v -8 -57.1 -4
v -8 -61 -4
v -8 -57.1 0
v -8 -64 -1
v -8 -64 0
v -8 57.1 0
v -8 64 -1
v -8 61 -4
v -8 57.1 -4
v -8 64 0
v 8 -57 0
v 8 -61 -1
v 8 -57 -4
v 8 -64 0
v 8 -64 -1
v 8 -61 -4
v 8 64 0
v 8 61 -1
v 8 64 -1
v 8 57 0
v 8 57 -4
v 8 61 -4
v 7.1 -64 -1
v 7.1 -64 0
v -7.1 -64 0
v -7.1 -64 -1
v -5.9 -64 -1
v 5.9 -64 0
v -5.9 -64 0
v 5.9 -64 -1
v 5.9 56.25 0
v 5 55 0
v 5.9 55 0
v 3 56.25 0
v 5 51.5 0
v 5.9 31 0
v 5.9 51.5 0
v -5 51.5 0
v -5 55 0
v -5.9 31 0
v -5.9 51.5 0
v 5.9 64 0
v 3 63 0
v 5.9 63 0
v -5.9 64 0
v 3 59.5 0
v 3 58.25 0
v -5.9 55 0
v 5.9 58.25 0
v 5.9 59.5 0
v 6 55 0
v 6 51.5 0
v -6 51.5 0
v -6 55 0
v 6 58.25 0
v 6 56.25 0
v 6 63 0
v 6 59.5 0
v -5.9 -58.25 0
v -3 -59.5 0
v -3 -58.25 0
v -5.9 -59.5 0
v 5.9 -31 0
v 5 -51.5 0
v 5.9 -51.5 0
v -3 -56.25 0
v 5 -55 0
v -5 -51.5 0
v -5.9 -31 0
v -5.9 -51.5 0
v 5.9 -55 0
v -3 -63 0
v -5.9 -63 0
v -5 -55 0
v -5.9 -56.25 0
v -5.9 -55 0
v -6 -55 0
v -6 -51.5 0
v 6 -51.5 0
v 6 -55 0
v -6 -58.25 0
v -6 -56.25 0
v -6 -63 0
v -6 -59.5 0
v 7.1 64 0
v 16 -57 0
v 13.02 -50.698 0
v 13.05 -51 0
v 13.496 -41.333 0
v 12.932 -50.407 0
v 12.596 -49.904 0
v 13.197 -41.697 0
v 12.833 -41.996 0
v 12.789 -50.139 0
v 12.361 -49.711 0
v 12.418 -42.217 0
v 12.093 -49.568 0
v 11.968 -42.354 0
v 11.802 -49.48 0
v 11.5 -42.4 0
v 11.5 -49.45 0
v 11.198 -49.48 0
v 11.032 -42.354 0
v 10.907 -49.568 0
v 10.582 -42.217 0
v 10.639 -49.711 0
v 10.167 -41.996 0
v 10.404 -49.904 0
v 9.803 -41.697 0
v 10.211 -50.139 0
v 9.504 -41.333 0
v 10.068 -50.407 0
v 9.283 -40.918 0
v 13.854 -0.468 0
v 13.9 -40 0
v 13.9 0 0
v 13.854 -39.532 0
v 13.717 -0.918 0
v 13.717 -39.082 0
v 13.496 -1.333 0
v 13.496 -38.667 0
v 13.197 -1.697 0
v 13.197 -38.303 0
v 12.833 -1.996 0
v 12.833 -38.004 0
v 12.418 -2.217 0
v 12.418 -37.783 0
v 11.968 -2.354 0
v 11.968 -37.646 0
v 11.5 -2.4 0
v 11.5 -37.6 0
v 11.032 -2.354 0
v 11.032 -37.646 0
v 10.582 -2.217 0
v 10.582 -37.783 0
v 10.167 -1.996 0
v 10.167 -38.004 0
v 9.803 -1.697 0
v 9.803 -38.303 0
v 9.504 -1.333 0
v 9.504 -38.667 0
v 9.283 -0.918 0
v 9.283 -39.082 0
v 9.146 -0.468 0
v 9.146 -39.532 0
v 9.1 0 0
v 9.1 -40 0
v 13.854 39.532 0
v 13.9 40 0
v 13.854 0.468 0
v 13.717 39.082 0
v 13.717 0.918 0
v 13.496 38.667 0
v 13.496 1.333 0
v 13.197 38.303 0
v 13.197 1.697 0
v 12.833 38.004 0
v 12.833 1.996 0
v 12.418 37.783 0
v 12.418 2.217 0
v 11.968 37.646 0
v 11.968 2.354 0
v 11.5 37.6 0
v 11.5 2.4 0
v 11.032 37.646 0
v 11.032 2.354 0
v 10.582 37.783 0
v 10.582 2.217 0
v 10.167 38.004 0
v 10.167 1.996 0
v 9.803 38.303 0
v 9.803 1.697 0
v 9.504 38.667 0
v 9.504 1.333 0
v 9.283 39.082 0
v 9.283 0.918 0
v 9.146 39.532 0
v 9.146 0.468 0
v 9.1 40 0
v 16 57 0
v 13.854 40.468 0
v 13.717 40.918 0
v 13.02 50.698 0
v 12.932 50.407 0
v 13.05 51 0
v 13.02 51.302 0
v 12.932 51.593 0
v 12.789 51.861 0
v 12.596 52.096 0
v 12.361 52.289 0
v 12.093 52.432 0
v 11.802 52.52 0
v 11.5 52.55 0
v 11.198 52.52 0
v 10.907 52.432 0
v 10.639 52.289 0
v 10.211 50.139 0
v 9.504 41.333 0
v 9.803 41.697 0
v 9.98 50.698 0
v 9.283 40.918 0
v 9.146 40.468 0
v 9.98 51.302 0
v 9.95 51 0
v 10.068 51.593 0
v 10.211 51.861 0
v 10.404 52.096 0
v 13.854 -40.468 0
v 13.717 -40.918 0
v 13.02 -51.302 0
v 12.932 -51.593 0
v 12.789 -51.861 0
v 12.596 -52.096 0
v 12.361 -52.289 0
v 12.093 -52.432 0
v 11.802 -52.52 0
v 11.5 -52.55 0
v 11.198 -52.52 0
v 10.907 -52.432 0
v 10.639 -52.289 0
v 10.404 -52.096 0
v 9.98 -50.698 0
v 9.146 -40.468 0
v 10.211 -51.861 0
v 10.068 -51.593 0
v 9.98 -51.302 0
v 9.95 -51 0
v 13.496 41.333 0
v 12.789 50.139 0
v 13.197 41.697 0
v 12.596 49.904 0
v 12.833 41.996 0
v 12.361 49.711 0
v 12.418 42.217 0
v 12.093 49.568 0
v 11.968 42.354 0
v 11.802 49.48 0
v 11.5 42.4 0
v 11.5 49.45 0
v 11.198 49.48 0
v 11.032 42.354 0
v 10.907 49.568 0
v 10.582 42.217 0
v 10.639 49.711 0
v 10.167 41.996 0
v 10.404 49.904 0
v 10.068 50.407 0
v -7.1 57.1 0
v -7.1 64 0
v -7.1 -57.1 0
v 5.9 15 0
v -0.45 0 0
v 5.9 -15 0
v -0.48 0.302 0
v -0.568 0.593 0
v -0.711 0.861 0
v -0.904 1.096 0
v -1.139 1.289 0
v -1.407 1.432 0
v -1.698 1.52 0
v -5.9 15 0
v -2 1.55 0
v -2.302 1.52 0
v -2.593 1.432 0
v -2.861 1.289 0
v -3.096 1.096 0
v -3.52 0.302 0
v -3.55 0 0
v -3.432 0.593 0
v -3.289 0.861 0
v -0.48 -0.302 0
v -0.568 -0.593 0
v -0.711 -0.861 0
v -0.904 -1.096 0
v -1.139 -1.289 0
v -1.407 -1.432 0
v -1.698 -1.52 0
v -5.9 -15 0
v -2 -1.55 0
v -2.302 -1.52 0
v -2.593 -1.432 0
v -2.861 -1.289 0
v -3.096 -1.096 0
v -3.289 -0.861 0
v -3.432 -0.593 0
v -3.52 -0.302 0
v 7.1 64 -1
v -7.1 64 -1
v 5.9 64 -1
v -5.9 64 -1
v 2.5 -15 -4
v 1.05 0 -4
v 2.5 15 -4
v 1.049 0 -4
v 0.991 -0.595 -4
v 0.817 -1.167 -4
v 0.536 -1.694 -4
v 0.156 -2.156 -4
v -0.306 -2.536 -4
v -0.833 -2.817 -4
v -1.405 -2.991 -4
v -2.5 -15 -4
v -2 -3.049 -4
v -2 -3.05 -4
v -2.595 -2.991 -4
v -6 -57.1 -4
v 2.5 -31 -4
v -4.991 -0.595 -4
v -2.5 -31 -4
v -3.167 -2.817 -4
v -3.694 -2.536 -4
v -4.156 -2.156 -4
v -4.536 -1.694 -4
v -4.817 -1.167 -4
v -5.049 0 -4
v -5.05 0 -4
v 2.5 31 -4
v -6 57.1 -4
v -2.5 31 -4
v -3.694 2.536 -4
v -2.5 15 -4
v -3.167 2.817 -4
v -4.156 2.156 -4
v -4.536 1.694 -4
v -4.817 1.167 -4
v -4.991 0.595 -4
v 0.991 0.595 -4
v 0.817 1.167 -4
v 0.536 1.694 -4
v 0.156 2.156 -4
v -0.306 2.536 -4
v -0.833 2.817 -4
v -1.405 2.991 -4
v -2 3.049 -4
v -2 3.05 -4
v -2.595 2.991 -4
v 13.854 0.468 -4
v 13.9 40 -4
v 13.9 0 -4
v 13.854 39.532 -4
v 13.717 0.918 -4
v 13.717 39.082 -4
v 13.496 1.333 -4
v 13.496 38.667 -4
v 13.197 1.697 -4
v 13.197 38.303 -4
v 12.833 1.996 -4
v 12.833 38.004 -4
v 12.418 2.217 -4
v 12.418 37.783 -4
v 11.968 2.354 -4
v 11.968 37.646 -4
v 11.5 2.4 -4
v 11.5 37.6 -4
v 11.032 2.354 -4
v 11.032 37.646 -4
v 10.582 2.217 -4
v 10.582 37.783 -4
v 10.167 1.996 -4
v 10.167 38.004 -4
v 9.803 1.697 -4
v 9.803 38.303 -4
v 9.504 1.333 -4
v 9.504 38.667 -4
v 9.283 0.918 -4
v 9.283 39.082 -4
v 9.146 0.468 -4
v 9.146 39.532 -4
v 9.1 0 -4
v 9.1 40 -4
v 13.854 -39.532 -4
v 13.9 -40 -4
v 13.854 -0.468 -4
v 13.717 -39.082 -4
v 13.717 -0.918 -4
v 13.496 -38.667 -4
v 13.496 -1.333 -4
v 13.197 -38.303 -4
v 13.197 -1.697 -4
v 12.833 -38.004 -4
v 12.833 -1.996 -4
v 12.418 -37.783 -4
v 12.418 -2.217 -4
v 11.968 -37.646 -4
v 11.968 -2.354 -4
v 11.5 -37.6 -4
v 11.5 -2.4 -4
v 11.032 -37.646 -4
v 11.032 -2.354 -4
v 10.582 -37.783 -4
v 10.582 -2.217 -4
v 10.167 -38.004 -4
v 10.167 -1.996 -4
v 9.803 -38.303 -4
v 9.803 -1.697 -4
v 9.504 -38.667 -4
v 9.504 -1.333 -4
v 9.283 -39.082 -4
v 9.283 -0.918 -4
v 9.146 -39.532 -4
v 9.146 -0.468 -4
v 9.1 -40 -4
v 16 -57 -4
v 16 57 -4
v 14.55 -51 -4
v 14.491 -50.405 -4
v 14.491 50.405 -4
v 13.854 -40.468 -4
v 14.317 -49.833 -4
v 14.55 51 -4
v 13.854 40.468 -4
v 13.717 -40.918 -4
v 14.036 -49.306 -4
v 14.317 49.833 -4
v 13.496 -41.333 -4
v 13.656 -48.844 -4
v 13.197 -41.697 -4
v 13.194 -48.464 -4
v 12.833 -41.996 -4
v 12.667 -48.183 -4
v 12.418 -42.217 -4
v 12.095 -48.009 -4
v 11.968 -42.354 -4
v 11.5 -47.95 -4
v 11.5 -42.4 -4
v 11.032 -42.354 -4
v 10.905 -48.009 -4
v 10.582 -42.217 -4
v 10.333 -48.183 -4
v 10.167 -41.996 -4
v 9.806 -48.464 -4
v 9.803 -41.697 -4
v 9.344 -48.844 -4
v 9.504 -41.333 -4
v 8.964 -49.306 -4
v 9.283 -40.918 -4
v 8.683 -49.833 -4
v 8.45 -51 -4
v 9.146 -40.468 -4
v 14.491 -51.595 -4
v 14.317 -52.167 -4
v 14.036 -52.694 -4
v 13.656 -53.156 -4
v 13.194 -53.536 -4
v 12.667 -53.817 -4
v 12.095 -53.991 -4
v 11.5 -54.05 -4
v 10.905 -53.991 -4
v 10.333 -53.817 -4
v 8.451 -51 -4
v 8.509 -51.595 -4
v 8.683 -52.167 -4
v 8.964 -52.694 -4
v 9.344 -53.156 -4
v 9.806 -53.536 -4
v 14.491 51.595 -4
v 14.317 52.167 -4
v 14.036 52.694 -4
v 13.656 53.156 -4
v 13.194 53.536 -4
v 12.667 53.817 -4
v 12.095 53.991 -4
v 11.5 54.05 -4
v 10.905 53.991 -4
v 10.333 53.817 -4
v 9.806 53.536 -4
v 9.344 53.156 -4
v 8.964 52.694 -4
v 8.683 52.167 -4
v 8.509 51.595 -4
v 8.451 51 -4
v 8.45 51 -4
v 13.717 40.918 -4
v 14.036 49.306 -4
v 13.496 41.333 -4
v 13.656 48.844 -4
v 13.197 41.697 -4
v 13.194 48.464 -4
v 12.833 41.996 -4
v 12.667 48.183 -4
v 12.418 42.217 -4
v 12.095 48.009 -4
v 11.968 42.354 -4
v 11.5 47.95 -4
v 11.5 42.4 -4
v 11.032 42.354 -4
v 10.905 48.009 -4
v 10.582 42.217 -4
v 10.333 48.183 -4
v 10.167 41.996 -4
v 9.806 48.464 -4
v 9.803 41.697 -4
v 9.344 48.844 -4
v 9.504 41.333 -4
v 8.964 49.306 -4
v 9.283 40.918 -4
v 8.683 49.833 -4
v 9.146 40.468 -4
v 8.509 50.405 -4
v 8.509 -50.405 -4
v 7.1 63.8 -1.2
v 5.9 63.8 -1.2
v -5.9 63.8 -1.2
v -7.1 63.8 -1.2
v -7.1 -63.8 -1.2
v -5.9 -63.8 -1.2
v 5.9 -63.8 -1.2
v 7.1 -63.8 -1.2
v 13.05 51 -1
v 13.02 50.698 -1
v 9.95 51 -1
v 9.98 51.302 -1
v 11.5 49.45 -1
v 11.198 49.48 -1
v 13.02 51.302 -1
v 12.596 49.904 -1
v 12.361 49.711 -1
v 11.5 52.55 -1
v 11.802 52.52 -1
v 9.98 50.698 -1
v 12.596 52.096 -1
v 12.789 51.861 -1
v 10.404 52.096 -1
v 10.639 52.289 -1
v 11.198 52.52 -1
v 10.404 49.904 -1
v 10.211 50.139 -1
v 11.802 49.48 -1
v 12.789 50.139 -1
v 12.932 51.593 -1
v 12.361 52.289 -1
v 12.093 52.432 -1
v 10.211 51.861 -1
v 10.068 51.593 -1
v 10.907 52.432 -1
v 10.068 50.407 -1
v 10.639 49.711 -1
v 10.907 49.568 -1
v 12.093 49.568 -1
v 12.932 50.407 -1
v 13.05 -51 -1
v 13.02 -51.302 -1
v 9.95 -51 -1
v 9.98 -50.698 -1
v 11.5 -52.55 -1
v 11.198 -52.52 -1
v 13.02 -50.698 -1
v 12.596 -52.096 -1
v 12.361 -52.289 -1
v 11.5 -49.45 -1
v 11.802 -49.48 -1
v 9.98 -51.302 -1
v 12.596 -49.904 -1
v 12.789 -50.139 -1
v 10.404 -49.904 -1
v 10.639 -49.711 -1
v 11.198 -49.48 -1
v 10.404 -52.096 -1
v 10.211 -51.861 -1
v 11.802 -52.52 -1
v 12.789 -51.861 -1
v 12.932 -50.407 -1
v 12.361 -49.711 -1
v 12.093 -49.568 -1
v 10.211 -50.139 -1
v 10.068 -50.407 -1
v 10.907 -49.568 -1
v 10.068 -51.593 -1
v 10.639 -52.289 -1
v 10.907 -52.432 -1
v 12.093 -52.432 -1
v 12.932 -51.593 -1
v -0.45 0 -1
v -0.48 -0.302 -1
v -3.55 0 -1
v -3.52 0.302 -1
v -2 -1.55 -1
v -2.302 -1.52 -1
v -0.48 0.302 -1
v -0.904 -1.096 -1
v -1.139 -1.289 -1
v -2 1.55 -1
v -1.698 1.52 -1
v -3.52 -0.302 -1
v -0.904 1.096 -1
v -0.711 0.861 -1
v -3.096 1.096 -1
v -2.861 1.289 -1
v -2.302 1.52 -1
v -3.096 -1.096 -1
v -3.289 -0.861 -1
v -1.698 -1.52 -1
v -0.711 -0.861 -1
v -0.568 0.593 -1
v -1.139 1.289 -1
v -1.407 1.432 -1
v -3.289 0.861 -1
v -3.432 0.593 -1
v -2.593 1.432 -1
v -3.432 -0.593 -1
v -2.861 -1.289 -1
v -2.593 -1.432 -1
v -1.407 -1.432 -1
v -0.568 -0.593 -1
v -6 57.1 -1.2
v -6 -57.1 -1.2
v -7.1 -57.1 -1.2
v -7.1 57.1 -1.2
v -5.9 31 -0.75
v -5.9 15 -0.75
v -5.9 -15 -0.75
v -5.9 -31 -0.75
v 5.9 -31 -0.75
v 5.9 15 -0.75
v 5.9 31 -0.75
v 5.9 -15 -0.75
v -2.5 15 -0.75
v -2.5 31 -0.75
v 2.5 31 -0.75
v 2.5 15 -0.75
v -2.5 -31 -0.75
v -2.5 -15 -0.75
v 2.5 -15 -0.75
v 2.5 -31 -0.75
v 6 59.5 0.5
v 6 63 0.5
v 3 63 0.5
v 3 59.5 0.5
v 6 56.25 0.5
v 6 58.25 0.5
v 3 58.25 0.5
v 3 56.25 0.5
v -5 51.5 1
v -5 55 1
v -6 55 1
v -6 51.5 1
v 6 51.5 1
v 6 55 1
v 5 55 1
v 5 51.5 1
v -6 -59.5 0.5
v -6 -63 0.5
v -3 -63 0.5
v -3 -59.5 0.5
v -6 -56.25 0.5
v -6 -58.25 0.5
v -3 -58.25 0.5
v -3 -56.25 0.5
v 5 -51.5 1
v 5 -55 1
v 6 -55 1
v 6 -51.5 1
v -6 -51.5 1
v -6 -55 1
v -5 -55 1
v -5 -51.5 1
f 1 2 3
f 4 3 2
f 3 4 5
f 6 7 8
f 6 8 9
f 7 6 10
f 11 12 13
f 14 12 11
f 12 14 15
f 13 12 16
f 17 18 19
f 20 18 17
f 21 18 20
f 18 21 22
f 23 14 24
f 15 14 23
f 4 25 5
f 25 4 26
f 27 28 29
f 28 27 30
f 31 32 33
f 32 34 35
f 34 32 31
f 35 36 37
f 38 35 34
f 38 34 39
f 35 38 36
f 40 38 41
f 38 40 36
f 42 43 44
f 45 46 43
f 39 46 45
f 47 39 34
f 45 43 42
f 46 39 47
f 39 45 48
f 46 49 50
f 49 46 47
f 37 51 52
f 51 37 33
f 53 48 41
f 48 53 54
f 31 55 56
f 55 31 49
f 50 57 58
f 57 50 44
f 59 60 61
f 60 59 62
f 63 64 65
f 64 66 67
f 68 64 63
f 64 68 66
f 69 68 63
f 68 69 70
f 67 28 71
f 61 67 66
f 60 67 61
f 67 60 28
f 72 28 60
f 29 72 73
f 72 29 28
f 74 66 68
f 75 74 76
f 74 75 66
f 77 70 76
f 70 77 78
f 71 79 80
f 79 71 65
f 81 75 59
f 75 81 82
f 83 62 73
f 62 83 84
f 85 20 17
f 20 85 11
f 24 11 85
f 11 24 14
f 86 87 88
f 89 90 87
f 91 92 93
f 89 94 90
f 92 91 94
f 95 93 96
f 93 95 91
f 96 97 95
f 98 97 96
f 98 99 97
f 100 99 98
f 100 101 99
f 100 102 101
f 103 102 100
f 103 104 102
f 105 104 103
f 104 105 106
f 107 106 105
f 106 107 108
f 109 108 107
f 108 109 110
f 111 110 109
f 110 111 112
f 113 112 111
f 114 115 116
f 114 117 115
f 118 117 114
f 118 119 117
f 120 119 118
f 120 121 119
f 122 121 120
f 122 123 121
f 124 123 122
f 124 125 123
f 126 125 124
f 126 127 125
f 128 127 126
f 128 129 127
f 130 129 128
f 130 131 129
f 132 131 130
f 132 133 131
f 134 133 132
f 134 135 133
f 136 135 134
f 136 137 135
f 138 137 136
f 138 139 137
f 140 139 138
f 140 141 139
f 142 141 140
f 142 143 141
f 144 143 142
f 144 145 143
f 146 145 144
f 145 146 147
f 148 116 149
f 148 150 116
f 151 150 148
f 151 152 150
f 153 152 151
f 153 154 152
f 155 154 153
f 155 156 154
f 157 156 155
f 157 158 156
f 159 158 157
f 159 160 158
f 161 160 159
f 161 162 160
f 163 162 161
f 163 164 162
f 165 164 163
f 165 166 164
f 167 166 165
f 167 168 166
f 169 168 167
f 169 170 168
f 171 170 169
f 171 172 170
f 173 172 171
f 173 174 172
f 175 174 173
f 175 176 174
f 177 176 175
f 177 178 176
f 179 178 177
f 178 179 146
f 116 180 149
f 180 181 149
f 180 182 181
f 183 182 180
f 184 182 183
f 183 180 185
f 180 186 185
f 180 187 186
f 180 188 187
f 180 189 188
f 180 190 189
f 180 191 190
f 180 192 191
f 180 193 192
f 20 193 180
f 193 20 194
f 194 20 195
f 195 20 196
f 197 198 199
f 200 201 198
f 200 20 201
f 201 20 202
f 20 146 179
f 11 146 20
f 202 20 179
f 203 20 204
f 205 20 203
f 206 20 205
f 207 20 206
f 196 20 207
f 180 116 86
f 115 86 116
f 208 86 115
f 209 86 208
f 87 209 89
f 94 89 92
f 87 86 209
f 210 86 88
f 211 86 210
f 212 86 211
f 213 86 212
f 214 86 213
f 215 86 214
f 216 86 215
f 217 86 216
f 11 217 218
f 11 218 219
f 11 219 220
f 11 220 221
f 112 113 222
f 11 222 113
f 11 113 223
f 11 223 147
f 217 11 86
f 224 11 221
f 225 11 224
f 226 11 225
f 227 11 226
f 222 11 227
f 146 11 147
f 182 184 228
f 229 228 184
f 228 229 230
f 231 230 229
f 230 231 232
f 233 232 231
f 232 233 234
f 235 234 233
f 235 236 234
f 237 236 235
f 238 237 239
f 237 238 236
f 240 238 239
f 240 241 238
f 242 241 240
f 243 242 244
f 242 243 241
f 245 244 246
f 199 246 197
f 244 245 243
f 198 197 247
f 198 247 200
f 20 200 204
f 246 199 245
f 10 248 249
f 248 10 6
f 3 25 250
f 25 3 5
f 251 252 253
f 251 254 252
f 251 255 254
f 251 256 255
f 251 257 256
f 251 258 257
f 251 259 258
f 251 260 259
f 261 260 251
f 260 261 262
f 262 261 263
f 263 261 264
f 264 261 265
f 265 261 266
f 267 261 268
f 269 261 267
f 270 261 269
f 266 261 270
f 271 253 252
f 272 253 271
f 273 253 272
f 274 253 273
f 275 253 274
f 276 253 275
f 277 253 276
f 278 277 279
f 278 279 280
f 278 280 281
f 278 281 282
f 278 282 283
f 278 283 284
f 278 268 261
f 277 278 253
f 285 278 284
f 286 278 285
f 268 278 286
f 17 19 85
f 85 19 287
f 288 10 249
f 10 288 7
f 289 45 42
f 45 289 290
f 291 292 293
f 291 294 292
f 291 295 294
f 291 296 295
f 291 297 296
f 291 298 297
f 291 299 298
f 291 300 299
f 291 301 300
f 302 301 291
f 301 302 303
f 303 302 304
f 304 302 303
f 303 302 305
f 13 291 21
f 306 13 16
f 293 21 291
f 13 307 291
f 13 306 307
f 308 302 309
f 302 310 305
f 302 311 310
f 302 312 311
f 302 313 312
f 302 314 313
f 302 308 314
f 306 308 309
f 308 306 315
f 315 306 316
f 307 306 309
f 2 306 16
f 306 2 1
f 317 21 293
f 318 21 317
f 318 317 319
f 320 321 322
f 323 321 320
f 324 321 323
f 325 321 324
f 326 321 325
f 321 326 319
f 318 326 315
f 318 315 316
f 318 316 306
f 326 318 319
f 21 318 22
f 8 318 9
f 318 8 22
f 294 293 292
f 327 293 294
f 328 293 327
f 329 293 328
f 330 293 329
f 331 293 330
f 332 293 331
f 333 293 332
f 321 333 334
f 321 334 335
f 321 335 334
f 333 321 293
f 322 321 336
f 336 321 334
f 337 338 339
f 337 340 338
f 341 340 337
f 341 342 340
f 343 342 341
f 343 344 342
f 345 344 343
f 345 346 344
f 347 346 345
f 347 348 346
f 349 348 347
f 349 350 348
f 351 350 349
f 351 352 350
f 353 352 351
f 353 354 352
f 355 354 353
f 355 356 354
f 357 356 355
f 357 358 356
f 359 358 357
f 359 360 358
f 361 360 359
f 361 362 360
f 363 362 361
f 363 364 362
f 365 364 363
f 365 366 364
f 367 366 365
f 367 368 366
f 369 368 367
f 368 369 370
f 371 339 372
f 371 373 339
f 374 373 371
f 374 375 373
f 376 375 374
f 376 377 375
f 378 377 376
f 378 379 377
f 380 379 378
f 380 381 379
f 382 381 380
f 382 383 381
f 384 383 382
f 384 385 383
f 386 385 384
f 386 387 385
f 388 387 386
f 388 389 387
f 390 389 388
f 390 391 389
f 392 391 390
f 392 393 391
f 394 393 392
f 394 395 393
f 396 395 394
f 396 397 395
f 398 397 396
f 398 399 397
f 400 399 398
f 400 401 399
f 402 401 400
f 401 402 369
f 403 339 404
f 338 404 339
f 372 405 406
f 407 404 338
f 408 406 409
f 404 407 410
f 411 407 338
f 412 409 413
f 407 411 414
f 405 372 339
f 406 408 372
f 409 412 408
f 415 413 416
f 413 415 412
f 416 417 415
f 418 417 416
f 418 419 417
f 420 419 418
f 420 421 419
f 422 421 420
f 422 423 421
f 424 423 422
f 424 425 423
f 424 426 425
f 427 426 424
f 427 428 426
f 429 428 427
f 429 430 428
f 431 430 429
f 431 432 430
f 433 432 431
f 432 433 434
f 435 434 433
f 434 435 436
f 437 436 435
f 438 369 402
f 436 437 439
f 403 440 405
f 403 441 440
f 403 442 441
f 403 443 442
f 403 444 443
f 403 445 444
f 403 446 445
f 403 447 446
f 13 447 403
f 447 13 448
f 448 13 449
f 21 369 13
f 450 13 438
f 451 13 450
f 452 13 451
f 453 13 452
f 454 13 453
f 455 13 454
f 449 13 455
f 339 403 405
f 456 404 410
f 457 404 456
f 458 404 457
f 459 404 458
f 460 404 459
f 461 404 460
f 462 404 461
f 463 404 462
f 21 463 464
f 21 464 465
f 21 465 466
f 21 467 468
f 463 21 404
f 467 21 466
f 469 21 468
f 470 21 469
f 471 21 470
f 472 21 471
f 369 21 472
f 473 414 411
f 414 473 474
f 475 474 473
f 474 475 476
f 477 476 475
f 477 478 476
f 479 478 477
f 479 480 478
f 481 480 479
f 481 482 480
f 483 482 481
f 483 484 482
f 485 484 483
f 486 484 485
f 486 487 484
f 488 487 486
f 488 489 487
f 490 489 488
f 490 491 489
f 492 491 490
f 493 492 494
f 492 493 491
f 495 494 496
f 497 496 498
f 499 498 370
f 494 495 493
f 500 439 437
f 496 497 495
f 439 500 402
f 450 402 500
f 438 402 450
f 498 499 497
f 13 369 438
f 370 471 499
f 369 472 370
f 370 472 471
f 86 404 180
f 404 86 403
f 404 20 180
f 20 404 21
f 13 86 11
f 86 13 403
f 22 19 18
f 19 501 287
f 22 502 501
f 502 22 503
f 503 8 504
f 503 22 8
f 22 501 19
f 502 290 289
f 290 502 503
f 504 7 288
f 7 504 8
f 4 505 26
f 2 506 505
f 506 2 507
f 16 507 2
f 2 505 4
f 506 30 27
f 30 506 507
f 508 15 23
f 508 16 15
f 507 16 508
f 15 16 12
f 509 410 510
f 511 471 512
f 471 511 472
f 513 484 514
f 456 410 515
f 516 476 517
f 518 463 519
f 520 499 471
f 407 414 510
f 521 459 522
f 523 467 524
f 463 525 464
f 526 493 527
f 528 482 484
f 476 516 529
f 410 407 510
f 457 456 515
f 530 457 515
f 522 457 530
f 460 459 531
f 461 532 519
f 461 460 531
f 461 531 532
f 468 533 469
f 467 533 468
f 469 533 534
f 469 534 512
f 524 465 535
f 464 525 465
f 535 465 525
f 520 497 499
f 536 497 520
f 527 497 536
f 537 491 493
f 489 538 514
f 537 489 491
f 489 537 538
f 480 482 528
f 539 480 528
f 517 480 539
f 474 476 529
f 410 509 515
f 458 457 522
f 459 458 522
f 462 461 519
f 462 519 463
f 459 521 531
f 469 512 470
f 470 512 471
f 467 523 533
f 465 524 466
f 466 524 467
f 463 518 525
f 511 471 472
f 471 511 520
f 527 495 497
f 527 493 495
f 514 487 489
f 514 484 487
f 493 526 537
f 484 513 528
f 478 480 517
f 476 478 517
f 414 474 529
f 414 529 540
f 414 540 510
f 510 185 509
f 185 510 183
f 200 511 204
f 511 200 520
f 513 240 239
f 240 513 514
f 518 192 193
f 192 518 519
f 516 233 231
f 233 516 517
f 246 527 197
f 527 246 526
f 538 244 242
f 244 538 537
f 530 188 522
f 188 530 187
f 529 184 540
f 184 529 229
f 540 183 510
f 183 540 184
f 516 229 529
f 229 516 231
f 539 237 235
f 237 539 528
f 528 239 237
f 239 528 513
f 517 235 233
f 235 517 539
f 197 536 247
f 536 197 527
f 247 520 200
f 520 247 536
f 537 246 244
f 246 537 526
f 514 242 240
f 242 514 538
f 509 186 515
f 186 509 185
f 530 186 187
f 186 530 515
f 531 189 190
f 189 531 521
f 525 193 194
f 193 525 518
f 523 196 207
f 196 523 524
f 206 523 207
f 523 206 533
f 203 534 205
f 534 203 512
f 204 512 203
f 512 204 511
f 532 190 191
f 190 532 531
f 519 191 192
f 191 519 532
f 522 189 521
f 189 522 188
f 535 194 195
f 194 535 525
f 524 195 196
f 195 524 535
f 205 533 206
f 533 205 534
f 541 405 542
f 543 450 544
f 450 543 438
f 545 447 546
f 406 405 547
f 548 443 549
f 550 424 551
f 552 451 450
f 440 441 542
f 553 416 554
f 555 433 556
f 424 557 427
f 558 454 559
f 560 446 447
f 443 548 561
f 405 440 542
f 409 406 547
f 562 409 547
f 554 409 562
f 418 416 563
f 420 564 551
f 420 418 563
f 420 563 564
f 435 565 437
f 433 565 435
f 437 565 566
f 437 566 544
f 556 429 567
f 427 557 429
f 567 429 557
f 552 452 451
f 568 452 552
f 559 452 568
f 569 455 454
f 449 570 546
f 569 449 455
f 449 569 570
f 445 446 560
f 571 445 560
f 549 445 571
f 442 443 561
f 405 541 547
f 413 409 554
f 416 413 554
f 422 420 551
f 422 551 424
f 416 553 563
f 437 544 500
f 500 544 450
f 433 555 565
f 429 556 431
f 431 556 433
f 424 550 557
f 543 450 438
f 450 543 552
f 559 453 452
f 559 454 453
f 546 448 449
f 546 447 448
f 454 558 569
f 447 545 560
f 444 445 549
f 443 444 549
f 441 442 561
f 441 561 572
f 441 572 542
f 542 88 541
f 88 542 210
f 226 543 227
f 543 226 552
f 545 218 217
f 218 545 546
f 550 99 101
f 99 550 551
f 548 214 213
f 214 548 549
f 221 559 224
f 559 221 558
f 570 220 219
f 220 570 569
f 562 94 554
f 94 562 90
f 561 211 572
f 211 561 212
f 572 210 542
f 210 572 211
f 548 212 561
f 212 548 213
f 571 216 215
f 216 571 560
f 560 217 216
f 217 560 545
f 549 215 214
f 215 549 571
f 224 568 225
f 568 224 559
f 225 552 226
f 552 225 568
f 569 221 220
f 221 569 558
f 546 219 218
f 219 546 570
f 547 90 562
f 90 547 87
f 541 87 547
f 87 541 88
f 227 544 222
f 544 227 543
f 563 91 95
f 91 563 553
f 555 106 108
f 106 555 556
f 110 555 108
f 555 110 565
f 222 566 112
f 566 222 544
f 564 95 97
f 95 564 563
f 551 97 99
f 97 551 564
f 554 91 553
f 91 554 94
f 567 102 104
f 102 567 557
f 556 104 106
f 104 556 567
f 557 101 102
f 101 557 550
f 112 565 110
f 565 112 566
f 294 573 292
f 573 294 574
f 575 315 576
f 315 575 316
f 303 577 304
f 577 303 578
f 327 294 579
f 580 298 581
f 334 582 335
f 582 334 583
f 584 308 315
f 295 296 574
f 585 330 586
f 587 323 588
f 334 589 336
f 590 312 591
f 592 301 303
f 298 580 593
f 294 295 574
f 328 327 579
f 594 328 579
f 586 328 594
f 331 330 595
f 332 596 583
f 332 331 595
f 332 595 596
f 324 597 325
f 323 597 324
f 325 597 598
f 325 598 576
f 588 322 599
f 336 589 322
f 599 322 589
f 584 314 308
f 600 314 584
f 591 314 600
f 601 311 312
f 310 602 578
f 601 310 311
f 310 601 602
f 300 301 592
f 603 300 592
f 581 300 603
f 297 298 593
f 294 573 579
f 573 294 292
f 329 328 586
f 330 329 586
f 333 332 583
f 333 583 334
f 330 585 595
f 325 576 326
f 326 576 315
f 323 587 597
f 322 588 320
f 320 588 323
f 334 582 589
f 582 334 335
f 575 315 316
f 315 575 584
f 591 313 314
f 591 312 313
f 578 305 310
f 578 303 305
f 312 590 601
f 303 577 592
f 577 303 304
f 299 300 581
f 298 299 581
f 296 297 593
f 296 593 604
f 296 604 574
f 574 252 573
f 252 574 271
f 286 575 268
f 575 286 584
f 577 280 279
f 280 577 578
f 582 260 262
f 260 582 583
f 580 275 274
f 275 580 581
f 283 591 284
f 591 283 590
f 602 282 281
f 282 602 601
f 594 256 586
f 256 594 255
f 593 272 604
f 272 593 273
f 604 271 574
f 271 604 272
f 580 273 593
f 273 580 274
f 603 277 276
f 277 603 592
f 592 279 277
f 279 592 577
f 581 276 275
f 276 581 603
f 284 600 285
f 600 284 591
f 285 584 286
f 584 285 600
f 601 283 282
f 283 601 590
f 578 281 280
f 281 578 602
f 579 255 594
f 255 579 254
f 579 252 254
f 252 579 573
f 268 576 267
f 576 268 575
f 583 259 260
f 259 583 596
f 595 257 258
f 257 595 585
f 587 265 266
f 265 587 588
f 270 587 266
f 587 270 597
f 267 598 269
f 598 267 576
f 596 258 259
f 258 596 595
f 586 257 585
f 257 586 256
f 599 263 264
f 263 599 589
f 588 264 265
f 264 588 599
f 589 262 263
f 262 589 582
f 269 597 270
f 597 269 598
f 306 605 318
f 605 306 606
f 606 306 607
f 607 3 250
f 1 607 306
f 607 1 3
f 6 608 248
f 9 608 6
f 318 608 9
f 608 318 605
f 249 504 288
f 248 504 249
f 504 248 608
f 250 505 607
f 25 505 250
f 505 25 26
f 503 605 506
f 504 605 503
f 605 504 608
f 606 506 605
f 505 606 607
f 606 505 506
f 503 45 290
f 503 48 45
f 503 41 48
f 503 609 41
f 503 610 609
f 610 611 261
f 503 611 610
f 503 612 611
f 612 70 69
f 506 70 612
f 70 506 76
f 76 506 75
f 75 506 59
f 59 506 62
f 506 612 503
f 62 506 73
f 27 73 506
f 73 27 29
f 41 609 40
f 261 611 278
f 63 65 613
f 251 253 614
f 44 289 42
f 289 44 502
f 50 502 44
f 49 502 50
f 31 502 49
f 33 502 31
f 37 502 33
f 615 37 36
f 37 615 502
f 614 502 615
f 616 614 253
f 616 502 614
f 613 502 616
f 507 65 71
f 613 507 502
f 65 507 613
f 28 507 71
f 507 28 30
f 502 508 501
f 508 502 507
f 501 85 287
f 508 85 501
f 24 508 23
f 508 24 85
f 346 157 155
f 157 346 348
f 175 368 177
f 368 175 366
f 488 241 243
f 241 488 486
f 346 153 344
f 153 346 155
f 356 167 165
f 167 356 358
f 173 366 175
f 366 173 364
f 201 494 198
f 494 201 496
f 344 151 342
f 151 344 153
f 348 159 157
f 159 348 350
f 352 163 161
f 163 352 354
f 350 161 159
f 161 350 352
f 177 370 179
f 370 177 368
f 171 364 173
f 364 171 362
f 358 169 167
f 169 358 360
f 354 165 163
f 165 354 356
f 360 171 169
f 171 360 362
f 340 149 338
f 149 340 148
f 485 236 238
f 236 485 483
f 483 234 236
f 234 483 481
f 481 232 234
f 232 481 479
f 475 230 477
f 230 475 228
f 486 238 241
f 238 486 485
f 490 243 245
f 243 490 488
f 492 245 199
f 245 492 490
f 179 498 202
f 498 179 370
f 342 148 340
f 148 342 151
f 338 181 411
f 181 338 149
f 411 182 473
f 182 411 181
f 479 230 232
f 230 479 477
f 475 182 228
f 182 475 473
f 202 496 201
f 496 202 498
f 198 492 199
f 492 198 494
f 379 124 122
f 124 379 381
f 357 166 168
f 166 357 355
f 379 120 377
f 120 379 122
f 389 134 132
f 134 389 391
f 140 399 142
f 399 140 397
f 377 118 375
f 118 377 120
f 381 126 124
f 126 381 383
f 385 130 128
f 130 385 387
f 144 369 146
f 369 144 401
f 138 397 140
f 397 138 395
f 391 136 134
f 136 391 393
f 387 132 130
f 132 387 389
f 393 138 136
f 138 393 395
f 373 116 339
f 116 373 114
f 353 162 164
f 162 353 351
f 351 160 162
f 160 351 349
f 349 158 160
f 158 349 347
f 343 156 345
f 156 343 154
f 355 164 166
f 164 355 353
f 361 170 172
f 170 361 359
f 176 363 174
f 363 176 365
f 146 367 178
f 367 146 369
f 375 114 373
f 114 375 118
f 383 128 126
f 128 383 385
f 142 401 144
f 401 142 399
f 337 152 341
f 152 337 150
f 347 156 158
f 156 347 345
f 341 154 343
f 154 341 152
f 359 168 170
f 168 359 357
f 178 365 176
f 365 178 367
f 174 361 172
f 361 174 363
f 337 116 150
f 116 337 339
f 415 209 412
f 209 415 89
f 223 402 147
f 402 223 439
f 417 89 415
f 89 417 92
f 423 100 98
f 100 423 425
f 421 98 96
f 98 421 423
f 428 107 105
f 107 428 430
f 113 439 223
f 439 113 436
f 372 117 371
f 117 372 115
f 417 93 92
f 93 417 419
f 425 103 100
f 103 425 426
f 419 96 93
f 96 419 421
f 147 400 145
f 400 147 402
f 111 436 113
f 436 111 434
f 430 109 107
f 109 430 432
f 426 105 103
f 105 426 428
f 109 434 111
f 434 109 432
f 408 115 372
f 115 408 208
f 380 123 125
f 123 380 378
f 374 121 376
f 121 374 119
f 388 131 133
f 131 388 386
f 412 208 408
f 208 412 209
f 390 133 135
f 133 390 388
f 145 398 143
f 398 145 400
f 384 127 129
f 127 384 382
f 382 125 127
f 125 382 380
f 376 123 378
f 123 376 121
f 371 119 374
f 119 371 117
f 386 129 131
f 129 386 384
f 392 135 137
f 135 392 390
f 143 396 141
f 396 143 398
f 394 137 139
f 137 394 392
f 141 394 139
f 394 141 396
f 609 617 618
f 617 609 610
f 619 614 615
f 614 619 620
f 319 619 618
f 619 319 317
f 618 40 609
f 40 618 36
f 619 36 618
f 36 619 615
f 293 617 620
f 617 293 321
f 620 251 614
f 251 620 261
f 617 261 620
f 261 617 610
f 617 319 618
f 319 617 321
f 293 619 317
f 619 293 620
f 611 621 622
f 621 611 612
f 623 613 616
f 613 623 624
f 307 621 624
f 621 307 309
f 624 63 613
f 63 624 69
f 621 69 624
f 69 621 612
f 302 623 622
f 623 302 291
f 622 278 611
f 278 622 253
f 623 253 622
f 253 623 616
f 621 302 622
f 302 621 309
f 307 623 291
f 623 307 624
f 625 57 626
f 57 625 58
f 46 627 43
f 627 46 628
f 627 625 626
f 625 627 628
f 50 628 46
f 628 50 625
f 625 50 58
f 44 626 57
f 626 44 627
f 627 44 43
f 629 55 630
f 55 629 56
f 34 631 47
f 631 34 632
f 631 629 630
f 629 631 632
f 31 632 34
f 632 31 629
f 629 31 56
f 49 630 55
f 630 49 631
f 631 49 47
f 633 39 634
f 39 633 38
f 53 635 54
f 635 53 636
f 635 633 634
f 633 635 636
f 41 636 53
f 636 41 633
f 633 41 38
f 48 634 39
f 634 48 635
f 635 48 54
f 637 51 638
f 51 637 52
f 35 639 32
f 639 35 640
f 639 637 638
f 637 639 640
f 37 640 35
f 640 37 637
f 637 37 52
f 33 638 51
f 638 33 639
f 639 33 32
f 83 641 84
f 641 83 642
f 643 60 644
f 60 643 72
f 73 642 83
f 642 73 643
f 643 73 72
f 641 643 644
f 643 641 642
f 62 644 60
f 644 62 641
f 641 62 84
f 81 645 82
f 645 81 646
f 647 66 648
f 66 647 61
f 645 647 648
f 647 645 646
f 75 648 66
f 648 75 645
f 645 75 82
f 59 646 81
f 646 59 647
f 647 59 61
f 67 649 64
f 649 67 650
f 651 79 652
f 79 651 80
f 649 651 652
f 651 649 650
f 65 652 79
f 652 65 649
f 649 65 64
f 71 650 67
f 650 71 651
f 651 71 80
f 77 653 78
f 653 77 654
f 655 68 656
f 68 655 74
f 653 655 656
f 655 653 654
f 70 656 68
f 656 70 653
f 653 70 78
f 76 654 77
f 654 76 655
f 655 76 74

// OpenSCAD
batt_l = 68;
batt_w = 110;
batt_h = 18;

w_stretch = 2;
w_off = batt_l/2 - 16;

pi_l = 65;
pi_w = 56;
pi_hole_space_l = 58;
pi_hole_space_w = 49;

wheel_dist_l = 48;
m3_insert_d = 4.8;

t = 2;

    top_space = 4;
    h=12;
    
rotate([180,0,0]) {

difference() {
    union() {
        cube_center([16,batt_w+7+7 + 2*t,1]);
        cube_center([16,batt_w + 4 + 4 + 2*t,top_space]);

        translate([16/2+8/2,0,0])
        cube_center([8,batt_w+2*t,top_space]);

        translate([0,-batt_w/2-t-4,1])
        rotate([0,0,90])
        scale([3,16,3])
        triangle();

        translate([0,batt_w/2+t+4,1])
        rotate([0,0,90])
        scale([-3,16,3])
        triangle();

    }

translate([-7,0,0,])
cube_center([2,batt_w+2*t+0.2,10]);

translate([-6.5,0,0])
cube_center([1.2,150,1.2]);

translate([6.5,0,0])
cube_center([1.2,150,1.2]);

translate([11.5,-batt_w/2+4,0]) {
translate([0,0,1])
cylinder(d1=3.1,d2=6.1,h=3.001,$fn=32);
translate([0,0,0])
cylinder(d1=3.1,d2=3.1,h=3,$fn=32);
}

translate([11.5,batt_w/2-4,0]) {
translate([0,0,1])
cylinder(d1=3.1,d2=6.1,h=3.001,$fn=32);
translate([0,0,0])
cylinder(d1=3.1,d2=3.1,h=3,$fn=32);
}

translate([-2,0,0]) {
translate([0,0,1])
cylinder(d1=3.1,d2=6.1,h=3.001,$fn=32);
translate([0,0,0])
cylinder(d1=3.1,d2=3.1,h=3,$fn=32);
}

translate([11.5,-batt_w/2+15,0])
cylinder(d=m3_insert_d,h=5,$fn=32);
translate([11.5,0,0])
cylinder(d=m3_insert_d,h=5,$fn=32);
translate([11.5,batt_w/2-15,0])
cylinder(d=m3_insert_d,h=5,$fn=32);

translate([0,-24.5+3.5+2-4,0])
cube_center([12,16,0.75]);
translate([0,-24.5+3.5+2-4,0])
cube_center([5,16,4]);

translate([0,24.5-3.5-2+4,0])
cube_center([12,16,0.75]);
translate([0,24.5-3.5-2+4,0])
cube_center([5,16,4]);

}


translate([-12/2+3/2,batt_w/2+7+t-3.5/2-1,-.5])
cube_center([3,3.5,0.5]);

translate([-12/2+3/2,batt_w/2+7+t-2/2-5.75,-.5])
cube_center([3,2,0.5]);

translate([12/2-1/2,batt_w/2+7+t-3.5/2-9,-1])
cube_center([1,3.5,1]);

translate([-12/2+1/2,batt_w/2+7+t-3.5/2-9,-1])
cube_center([1,3.5,1]);

rotate([0,0,180]) {
translate([-12/2+3/2,batt_w/2+7+t-3.5/2-1,-.5])
cube_center([3,3.5,0.5]);

translate([-12/2+3/2,batt_w/2+7+t-2/2-5.75,-.5])
cube_center([3,2,0.5]);
    
translate([12/2-1/2,batt_w/2+7+t-3.5/2-9,-1])
cube_center([1,3.5,1]);

translate([-12/2+1/2,batt_w/2+7+t-3.5/2-9,-1])
cube_center([1,3.5,1]);
}

}

module cube_center(dims) {
    translate([-dims[0]/2, -dims[1]/2, 0])
    cube(dims);
}
 
module triangle() {
rotate([0,-90,90])
linear_extrude(height = 1, center = true, convexity = 10, twist = 0)
polygon(points=[[0,0],[0,1],[1,0]]);
}
